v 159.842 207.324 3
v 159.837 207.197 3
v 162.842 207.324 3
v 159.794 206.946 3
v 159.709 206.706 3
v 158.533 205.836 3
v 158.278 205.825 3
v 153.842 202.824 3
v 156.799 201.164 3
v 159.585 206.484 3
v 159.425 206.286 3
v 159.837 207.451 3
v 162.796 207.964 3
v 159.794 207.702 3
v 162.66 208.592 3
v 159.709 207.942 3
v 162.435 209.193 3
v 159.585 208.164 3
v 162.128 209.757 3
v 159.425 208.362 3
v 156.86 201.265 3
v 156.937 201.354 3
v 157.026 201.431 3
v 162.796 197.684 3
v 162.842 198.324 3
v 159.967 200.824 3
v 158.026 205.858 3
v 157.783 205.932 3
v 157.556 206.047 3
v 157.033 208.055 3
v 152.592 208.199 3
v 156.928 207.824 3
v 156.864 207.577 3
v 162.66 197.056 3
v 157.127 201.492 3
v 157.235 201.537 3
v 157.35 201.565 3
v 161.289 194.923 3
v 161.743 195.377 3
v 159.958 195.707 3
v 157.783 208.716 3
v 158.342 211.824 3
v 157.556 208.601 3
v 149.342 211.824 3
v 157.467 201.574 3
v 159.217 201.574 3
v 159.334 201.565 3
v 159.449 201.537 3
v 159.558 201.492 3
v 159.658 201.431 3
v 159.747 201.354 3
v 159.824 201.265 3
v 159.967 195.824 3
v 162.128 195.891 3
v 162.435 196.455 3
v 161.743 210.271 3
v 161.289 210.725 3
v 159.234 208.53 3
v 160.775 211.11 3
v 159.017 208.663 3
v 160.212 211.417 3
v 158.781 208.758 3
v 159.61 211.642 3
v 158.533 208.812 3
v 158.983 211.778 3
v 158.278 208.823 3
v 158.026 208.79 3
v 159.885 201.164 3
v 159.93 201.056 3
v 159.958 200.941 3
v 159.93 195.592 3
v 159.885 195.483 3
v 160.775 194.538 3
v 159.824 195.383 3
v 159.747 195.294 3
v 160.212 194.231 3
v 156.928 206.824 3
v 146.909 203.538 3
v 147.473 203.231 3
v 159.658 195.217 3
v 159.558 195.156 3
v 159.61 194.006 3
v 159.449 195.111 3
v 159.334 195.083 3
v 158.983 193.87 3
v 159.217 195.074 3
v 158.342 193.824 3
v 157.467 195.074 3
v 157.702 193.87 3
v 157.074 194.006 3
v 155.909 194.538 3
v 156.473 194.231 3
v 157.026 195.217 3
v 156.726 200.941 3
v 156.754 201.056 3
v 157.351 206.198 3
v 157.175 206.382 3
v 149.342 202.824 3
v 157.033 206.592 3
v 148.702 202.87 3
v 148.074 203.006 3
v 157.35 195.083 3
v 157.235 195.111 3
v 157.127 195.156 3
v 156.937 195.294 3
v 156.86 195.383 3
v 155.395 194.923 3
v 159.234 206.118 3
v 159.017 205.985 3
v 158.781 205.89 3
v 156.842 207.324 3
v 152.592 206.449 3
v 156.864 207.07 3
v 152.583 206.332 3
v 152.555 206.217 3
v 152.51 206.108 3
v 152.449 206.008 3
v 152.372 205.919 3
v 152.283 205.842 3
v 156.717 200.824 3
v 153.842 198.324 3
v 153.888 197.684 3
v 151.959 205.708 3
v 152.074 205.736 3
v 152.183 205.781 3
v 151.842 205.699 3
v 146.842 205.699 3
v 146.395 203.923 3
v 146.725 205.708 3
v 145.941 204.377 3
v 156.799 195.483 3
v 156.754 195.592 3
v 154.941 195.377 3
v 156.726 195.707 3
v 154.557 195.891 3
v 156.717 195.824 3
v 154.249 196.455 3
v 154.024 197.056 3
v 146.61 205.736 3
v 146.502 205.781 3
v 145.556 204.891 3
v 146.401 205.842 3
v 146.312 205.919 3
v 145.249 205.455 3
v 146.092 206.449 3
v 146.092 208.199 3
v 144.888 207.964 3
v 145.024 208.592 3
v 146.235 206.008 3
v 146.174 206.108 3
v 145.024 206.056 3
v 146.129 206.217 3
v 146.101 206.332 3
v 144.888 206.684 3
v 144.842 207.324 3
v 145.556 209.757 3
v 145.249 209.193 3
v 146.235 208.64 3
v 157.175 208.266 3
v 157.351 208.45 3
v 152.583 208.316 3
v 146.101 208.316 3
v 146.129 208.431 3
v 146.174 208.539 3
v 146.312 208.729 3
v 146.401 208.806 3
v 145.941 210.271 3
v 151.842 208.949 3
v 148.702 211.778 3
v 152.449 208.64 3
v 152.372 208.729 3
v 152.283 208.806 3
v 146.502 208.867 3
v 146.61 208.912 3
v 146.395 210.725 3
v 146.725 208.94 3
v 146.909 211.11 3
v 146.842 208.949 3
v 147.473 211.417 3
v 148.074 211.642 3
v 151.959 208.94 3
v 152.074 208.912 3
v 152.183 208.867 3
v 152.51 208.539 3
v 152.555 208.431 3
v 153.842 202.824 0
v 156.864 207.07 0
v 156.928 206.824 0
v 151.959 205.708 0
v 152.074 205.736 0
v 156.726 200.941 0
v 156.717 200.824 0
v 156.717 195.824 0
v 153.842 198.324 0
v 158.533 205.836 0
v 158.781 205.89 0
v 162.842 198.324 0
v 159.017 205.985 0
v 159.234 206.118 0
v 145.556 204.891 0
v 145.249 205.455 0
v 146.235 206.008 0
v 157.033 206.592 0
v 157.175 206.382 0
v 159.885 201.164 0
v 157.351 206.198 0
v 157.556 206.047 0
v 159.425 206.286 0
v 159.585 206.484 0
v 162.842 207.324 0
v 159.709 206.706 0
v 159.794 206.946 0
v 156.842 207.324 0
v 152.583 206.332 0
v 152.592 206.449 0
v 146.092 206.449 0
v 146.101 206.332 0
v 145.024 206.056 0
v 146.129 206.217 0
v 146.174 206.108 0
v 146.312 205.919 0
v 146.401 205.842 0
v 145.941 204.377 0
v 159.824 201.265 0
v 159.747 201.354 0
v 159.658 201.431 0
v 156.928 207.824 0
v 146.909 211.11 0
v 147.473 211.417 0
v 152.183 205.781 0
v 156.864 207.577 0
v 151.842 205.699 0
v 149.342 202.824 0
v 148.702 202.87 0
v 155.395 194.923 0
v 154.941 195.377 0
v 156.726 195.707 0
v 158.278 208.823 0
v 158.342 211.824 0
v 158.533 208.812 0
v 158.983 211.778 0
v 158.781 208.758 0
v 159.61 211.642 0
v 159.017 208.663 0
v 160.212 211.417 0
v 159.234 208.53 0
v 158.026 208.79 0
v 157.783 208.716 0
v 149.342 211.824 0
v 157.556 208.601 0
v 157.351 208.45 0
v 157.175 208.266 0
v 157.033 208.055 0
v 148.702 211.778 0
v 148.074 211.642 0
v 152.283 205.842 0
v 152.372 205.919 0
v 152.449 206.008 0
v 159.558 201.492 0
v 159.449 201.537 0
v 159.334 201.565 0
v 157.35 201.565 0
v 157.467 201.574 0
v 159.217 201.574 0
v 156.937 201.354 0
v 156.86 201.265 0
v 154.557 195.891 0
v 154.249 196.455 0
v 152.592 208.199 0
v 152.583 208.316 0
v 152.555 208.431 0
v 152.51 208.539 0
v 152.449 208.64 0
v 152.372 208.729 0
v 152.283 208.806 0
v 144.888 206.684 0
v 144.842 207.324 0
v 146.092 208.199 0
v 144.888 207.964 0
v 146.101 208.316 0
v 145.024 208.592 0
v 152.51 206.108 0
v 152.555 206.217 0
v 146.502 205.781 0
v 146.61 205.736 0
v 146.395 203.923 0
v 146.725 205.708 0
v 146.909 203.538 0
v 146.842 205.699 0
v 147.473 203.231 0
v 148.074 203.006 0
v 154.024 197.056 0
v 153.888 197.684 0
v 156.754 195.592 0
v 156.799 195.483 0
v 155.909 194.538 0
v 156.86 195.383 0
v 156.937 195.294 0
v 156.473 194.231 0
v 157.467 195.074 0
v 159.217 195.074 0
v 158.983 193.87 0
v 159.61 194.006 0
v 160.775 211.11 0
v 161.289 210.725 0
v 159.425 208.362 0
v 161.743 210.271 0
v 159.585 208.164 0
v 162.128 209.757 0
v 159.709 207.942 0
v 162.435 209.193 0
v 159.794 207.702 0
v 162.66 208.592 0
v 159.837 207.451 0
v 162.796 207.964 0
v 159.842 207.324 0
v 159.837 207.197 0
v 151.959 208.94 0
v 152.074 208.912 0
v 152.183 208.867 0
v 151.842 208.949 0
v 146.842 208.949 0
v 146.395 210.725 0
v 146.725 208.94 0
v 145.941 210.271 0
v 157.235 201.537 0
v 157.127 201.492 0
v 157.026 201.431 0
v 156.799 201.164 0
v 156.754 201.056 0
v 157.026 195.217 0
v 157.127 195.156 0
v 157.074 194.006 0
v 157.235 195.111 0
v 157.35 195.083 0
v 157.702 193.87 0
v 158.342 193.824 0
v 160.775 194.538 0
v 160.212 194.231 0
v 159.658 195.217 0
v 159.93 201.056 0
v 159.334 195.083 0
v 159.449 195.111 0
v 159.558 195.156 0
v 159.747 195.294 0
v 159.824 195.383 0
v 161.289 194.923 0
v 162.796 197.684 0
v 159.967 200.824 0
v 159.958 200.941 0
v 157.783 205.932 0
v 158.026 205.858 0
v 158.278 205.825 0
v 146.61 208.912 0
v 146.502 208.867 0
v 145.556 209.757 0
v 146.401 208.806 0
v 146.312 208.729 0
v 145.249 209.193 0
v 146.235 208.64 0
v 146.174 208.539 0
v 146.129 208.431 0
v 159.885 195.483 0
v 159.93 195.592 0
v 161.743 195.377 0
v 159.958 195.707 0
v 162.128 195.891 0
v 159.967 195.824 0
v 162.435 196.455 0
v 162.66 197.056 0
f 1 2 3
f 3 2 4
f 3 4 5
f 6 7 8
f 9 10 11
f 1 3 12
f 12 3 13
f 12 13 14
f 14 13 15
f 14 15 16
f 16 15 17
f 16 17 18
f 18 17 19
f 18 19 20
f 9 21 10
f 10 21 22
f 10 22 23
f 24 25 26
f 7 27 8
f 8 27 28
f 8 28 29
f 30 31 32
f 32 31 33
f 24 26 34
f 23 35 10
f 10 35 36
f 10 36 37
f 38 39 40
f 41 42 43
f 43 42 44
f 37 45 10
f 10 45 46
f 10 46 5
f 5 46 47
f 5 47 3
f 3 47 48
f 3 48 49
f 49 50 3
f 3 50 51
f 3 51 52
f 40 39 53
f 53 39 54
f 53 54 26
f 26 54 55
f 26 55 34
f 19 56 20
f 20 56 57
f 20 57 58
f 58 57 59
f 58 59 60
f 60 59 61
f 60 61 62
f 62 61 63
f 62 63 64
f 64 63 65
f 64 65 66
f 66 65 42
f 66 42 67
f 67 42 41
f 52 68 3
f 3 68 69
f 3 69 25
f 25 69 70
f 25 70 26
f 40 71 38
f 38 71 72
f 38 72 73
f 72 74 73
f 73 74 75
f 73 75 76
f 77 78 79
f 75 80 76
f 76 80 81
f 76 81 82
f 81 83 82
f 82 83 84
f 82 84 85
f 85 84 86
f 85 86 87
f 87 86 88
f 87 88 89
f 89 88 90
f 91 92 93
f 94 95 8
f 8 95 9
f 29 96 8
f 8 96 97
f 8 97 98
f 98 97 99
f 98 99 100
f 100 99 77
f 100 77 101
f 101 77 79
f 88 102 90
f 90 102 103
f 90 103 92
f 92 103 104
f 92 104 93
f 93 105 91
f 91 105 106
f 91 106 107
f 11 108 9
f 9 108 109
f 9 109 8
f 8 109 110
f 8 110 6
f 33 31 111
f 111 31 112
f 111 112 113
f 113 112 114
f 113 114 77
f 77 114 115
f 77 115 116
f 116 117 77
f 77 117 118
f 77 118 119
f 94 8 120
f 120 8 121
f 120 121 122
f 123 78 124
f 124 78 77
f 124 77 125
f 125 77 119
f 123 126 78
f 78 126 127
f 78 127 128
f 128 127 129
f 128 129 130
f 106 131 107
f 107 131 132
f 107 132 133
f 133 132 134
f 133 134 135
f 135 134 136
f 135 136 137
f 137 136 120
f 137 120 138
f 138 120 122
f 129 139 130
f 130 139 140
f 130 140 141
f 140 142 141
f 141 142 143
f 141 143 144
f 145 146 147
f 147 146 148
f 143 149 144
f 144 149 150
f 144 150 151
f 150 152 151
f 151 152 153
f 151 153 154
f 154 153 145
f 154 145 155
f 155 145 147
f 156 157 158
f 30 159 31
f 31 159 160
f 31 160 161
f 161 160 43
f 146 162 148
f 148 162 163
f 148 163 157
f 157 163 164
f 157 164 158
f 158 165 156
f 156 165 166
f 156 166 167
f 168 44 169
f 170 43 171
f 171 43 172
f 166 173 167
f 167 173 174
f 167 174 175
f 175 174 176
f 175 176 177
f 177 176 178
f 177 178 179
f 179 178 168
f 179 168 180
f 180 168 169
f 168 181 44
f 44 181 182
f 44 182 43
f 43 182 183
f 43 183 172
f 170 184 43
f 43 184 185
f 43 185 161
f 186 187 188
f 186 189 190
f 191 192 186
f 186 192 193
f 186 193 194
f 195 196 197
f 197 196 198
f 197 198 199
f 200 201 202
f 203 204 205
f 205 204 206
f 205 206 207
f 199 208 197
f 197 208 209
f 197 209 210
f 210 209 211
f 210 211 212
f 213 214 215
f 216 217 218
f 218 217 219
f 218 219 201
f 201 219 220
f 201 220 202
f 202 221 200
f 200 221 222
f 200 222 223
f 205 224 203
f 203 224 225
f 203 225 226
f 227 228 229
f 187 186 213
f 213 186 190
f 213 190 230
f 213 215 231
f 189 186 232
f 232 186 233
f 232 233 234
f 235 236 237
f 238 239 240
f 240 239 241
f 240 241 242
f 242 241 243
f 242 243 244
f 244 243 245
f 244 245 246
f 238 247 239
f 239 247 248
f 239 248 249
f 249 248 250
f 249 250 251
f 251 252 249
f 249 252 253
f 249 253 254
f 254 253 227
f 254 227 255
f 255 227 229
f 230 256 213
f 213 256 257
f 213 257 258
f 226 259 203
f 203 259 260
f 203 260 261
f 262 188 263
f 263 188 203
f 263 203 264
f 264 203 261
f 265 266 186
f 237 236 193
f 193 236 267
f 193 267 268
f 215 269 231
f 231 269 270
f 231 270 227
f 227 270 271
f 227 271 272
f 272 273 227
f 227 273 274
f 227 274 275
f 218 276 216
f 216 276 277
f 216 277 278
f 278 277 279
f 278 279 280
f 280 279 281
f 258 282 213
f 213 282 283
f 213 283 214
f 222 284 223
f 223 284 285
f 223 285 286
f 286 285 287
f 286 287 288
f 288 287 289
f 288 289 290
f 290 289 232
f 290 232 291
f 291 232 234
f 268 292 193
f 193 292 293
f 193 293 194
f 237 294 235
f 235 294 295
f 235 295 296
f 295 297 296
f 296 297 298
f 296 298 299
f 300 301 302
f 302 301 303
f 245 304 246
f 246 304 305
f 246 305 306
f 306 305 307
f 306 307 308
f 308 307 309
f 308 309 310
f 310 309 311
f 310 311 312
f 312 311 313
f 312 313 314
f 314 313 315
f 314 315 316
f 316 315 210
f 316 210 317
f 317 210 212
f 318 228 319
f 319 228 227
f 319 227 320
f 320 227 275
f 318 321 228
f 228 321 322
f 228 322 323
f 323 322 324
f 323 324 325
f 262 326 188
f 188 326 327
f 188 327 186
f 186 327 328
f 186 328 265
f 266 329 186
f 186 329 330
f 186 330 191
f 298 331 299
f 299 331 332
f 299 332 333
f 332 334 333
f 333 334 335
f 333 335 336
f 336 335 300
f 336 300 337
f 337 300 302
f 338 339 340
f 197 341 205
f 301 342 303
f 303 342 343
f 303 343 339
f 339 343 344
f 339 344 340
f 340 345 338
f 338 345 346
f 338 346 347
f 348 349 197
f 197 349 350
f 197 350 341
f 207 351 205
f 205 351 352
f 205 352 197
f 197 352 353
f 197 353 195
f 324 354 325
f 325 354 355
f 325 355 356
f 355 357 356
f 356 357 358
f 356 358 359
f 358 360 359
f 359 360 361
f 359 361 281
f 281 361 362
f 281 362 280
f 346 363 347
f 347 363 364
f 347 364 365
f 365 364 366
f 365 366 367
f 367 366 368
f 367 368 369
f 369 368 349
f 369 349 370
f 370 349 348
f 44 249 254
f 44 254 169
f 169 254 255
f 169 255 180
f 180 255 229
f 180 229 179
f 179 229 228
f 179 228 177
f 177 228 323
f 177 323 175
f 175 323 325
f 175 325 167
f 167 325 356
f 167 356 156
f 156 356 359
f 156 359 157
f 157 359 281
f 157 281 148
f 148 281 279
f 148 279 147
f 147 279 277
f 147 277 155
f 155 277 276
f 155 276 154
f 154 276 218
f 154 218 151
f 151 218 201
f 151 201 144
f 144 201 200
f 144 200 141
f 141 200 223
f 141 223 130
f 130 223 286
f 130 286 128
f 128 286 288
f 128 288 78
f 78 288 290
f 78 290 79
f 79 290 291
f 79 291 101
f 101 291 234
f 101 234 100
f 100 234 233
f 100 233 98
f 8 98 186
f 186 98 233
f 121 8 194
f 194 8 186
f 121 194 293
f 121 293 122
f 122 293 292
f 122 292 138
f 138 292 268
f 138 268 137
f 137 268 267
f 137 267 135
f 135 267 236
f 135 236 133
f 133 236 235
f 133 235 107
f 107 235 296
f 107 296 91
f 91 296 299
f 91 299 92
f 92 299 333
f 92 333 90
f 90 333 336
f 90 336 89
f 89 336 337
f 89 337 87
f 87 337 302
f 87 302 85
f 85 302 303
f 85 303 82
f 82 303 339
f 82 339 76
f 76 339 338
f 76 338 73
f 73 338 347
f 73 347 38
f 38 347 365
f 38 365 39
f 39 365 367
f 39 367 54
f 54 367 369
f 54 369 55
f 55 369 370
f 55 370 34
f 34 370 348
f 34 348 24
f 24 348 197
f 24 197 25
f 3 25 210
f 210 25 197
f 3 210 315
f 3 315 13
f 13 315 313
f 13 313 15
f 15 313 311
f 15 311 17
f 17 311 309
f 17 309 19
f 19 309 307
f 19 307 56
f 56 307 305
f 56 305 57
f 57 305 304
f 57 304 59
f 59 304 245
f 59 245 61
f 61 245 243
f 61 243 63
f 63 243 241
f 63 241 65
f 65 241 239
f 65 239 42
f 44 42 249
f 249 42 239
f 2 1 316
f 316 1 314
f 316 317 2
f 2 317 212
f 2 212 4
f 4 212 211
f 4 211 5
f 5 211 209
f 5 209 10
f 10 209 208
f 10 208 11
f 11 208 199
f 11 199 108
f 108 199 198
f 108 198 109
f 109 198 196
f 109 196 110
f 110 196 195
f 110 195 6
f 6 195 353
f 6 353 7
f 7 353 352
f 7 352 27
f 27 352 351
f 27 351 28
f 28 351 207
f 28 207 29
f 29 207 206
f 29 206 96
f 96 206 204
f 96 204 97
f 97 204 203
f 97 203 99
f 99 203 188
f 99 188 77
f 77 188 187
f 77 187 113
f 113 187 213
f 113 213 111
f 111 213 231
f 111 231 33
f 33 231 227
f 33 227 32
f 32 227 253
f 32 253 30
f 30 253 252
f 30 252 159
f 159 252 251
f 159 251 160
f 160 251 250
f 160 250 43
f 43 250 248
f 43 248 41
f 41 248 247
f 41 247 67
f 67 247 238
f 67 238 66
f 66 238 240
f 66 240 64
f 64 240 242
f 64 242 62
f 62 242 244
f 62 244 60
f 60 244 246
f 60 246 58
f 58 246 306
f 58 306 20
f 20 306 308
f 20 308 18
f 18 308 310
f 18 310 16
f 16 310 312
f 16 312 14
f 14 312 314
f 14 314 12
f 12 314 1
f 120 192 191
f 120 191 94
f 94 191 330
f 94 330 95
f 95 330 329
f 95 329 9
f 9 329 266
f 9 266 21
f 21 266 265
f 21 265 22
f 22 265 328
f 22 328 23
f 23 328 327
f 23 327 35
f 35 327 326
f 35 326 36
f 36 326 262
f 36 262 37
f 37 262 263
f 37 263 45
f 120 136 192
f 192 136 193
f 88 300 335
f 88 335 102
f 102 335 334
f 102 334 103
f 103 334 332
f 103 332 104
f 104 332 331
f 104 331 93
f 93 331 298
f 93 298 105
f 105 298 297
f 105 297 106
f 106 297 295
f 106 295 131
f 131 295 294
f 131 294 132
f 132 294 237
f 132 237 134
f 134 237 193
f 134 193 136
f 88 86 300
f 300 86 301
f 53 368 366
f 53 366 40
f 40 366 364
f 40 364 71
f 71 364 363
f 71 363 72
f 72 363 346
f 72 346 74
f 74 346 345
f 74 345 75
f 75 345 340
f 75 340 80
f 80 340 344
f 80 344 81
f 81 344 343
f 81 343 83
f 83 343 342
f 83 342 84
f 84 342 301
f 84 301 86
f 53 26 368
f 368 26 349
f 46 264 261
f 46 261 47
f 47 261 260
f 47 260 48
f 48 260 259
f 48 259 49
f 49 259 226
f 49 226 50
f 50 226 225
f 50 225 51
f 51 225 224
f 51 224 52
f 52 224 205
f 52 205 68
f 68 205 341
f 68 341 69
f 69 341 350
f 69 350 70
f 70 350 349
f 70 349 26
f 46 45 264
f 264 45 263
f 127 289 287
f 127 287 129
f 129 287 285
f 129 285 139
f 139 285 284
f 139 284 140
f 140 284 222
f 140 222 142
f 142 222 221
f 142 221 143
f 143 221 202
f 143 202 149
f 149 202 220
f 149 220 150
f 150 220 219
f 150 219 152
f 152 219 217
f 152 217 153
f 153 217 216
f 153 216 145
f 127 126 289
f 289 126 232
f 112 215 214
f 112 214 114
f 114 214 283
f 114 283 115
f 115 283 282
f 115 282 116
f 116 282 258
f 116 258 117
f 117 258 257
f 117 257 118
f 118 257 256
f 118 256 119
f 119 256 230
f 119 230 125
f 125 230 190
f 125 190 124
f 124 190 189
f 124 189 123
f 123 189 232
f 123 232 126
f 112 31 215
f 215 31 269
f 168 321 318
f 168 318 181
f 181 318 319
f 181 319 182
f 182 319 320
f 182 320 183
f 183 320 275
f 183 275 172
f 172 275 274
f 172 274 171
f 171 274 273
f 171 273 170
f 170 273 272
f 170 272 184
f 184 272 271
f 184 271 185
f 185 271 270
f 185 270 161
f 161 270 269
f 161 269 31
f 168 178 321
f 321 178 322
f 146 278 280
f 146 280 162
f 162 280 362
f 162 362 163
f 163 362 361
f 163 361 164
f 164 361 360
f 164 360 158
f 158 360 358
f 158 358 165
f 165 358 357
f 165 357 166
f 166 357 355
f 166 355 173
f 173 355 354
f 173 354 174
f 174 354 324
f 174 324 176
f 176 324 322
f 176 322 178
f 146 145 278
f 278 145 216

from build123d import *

# Parameters (mm, degrees)
MODEL_R                 = 1.5
SALIENTE_EXTRUIR1_DEPTH = 3


with BuildPart() as part:
    # Model → Saliente-Extruir1 (new body)
    with BuildSketch(Plane.XY):
        with BuildLine():
            Line((149.34213351, 211.823953209), (158.34213351, 211.823953209))
            ThreePointArc((158.34213351, 211.823953209), (161.524114025, 210.505933724), (162.84213351, 207.323953209))
            Line((162.84213351, 207.323953209), (162.84213351, 198.323953209))
            ThreePointArc((162.84213351, 198.323953209), (158.34213351, 193.823953209), (153.84213351, 198.323953209))
            Line((153.84213351, 198.323953209), (153.84213351, 202.823953209))
            Line((153.84213351, 202.823953209), (149.34213351, 202.823953209))
            ThreePointArc((149.34213351, 202.823953209), (144.84213351, 207.323953209), (149.34213351, 211.823953209))
        make_face()
        with Locations((158.34213351, 207.323953209)):
            Circle(MODEL_R, mode=Mode.SUBTRACT)
        with BuildLine():
            Line((156.71713351, 195.823953209), (156.71713351, 200.823953209))
            ThreePointArc((156.71713351, 200.823953209), (156.936803424, 201.354283295), (157.46713351, 201.573953209))
            Line((157.46713351, 201.573953209), (159.21713351, 201.573953209))
            ThreePointArc((159.21713351, 201.573953209), (159.747463595, 201.354283295), (159.96713351, 200.823953209))
            Line((159.96713351, 200.823953209), (159.96713351, 195.823953209))
            ThreePointArc((159.96713351, 195.823953209), (159.747463595, 195.293623123), (159.21713351, 195.073953209))
            Line((159.21713351, 195.073953209), (157.46713351, 195.073953209))
            ThreePointArc((157.46713351, 195.073953209), (156.936803424, 195.293623123), (156.71713351, 195.823953209))
        make_face(mode=Mode.SUBTRACT)
        with BuildLine():
            Line((151.84213351, 205.698953209), (146.84213351, 205.698953209))
            ThreePointArc((146.84213351, 205.698953209), (146.311803424, 205.918623123), (146.09213351, 206.448953209))
            Line((146.09213351, 206.448953209), (146.09213351, 208.198953209))
            ThreePointArc((146.09213351, 208.198953209), (146.311803424, 208.729283295), (146.84213351, 208.948953209))
            Line((146.84213351, 208.948953209), (151.84213351, 208.948953209))
            ThreePointArc((151.84213351, 208.948953209), (152.372463595, 208.729283295), (152.59213351, 208.198953209))
            Line((152.59213351, 208.198953209), (152.59213351, 206.448953209))
            ThreePointArc((152.59213351, 206.448953209), (152.372463595, 205.918623123), (151.84213351, 205.698953209))
        make_face(mode=Mode.SUBTRACT)
    extrude(amount=SALIENTE_EXTRUIR1_DEPTH)


solid = part.part
